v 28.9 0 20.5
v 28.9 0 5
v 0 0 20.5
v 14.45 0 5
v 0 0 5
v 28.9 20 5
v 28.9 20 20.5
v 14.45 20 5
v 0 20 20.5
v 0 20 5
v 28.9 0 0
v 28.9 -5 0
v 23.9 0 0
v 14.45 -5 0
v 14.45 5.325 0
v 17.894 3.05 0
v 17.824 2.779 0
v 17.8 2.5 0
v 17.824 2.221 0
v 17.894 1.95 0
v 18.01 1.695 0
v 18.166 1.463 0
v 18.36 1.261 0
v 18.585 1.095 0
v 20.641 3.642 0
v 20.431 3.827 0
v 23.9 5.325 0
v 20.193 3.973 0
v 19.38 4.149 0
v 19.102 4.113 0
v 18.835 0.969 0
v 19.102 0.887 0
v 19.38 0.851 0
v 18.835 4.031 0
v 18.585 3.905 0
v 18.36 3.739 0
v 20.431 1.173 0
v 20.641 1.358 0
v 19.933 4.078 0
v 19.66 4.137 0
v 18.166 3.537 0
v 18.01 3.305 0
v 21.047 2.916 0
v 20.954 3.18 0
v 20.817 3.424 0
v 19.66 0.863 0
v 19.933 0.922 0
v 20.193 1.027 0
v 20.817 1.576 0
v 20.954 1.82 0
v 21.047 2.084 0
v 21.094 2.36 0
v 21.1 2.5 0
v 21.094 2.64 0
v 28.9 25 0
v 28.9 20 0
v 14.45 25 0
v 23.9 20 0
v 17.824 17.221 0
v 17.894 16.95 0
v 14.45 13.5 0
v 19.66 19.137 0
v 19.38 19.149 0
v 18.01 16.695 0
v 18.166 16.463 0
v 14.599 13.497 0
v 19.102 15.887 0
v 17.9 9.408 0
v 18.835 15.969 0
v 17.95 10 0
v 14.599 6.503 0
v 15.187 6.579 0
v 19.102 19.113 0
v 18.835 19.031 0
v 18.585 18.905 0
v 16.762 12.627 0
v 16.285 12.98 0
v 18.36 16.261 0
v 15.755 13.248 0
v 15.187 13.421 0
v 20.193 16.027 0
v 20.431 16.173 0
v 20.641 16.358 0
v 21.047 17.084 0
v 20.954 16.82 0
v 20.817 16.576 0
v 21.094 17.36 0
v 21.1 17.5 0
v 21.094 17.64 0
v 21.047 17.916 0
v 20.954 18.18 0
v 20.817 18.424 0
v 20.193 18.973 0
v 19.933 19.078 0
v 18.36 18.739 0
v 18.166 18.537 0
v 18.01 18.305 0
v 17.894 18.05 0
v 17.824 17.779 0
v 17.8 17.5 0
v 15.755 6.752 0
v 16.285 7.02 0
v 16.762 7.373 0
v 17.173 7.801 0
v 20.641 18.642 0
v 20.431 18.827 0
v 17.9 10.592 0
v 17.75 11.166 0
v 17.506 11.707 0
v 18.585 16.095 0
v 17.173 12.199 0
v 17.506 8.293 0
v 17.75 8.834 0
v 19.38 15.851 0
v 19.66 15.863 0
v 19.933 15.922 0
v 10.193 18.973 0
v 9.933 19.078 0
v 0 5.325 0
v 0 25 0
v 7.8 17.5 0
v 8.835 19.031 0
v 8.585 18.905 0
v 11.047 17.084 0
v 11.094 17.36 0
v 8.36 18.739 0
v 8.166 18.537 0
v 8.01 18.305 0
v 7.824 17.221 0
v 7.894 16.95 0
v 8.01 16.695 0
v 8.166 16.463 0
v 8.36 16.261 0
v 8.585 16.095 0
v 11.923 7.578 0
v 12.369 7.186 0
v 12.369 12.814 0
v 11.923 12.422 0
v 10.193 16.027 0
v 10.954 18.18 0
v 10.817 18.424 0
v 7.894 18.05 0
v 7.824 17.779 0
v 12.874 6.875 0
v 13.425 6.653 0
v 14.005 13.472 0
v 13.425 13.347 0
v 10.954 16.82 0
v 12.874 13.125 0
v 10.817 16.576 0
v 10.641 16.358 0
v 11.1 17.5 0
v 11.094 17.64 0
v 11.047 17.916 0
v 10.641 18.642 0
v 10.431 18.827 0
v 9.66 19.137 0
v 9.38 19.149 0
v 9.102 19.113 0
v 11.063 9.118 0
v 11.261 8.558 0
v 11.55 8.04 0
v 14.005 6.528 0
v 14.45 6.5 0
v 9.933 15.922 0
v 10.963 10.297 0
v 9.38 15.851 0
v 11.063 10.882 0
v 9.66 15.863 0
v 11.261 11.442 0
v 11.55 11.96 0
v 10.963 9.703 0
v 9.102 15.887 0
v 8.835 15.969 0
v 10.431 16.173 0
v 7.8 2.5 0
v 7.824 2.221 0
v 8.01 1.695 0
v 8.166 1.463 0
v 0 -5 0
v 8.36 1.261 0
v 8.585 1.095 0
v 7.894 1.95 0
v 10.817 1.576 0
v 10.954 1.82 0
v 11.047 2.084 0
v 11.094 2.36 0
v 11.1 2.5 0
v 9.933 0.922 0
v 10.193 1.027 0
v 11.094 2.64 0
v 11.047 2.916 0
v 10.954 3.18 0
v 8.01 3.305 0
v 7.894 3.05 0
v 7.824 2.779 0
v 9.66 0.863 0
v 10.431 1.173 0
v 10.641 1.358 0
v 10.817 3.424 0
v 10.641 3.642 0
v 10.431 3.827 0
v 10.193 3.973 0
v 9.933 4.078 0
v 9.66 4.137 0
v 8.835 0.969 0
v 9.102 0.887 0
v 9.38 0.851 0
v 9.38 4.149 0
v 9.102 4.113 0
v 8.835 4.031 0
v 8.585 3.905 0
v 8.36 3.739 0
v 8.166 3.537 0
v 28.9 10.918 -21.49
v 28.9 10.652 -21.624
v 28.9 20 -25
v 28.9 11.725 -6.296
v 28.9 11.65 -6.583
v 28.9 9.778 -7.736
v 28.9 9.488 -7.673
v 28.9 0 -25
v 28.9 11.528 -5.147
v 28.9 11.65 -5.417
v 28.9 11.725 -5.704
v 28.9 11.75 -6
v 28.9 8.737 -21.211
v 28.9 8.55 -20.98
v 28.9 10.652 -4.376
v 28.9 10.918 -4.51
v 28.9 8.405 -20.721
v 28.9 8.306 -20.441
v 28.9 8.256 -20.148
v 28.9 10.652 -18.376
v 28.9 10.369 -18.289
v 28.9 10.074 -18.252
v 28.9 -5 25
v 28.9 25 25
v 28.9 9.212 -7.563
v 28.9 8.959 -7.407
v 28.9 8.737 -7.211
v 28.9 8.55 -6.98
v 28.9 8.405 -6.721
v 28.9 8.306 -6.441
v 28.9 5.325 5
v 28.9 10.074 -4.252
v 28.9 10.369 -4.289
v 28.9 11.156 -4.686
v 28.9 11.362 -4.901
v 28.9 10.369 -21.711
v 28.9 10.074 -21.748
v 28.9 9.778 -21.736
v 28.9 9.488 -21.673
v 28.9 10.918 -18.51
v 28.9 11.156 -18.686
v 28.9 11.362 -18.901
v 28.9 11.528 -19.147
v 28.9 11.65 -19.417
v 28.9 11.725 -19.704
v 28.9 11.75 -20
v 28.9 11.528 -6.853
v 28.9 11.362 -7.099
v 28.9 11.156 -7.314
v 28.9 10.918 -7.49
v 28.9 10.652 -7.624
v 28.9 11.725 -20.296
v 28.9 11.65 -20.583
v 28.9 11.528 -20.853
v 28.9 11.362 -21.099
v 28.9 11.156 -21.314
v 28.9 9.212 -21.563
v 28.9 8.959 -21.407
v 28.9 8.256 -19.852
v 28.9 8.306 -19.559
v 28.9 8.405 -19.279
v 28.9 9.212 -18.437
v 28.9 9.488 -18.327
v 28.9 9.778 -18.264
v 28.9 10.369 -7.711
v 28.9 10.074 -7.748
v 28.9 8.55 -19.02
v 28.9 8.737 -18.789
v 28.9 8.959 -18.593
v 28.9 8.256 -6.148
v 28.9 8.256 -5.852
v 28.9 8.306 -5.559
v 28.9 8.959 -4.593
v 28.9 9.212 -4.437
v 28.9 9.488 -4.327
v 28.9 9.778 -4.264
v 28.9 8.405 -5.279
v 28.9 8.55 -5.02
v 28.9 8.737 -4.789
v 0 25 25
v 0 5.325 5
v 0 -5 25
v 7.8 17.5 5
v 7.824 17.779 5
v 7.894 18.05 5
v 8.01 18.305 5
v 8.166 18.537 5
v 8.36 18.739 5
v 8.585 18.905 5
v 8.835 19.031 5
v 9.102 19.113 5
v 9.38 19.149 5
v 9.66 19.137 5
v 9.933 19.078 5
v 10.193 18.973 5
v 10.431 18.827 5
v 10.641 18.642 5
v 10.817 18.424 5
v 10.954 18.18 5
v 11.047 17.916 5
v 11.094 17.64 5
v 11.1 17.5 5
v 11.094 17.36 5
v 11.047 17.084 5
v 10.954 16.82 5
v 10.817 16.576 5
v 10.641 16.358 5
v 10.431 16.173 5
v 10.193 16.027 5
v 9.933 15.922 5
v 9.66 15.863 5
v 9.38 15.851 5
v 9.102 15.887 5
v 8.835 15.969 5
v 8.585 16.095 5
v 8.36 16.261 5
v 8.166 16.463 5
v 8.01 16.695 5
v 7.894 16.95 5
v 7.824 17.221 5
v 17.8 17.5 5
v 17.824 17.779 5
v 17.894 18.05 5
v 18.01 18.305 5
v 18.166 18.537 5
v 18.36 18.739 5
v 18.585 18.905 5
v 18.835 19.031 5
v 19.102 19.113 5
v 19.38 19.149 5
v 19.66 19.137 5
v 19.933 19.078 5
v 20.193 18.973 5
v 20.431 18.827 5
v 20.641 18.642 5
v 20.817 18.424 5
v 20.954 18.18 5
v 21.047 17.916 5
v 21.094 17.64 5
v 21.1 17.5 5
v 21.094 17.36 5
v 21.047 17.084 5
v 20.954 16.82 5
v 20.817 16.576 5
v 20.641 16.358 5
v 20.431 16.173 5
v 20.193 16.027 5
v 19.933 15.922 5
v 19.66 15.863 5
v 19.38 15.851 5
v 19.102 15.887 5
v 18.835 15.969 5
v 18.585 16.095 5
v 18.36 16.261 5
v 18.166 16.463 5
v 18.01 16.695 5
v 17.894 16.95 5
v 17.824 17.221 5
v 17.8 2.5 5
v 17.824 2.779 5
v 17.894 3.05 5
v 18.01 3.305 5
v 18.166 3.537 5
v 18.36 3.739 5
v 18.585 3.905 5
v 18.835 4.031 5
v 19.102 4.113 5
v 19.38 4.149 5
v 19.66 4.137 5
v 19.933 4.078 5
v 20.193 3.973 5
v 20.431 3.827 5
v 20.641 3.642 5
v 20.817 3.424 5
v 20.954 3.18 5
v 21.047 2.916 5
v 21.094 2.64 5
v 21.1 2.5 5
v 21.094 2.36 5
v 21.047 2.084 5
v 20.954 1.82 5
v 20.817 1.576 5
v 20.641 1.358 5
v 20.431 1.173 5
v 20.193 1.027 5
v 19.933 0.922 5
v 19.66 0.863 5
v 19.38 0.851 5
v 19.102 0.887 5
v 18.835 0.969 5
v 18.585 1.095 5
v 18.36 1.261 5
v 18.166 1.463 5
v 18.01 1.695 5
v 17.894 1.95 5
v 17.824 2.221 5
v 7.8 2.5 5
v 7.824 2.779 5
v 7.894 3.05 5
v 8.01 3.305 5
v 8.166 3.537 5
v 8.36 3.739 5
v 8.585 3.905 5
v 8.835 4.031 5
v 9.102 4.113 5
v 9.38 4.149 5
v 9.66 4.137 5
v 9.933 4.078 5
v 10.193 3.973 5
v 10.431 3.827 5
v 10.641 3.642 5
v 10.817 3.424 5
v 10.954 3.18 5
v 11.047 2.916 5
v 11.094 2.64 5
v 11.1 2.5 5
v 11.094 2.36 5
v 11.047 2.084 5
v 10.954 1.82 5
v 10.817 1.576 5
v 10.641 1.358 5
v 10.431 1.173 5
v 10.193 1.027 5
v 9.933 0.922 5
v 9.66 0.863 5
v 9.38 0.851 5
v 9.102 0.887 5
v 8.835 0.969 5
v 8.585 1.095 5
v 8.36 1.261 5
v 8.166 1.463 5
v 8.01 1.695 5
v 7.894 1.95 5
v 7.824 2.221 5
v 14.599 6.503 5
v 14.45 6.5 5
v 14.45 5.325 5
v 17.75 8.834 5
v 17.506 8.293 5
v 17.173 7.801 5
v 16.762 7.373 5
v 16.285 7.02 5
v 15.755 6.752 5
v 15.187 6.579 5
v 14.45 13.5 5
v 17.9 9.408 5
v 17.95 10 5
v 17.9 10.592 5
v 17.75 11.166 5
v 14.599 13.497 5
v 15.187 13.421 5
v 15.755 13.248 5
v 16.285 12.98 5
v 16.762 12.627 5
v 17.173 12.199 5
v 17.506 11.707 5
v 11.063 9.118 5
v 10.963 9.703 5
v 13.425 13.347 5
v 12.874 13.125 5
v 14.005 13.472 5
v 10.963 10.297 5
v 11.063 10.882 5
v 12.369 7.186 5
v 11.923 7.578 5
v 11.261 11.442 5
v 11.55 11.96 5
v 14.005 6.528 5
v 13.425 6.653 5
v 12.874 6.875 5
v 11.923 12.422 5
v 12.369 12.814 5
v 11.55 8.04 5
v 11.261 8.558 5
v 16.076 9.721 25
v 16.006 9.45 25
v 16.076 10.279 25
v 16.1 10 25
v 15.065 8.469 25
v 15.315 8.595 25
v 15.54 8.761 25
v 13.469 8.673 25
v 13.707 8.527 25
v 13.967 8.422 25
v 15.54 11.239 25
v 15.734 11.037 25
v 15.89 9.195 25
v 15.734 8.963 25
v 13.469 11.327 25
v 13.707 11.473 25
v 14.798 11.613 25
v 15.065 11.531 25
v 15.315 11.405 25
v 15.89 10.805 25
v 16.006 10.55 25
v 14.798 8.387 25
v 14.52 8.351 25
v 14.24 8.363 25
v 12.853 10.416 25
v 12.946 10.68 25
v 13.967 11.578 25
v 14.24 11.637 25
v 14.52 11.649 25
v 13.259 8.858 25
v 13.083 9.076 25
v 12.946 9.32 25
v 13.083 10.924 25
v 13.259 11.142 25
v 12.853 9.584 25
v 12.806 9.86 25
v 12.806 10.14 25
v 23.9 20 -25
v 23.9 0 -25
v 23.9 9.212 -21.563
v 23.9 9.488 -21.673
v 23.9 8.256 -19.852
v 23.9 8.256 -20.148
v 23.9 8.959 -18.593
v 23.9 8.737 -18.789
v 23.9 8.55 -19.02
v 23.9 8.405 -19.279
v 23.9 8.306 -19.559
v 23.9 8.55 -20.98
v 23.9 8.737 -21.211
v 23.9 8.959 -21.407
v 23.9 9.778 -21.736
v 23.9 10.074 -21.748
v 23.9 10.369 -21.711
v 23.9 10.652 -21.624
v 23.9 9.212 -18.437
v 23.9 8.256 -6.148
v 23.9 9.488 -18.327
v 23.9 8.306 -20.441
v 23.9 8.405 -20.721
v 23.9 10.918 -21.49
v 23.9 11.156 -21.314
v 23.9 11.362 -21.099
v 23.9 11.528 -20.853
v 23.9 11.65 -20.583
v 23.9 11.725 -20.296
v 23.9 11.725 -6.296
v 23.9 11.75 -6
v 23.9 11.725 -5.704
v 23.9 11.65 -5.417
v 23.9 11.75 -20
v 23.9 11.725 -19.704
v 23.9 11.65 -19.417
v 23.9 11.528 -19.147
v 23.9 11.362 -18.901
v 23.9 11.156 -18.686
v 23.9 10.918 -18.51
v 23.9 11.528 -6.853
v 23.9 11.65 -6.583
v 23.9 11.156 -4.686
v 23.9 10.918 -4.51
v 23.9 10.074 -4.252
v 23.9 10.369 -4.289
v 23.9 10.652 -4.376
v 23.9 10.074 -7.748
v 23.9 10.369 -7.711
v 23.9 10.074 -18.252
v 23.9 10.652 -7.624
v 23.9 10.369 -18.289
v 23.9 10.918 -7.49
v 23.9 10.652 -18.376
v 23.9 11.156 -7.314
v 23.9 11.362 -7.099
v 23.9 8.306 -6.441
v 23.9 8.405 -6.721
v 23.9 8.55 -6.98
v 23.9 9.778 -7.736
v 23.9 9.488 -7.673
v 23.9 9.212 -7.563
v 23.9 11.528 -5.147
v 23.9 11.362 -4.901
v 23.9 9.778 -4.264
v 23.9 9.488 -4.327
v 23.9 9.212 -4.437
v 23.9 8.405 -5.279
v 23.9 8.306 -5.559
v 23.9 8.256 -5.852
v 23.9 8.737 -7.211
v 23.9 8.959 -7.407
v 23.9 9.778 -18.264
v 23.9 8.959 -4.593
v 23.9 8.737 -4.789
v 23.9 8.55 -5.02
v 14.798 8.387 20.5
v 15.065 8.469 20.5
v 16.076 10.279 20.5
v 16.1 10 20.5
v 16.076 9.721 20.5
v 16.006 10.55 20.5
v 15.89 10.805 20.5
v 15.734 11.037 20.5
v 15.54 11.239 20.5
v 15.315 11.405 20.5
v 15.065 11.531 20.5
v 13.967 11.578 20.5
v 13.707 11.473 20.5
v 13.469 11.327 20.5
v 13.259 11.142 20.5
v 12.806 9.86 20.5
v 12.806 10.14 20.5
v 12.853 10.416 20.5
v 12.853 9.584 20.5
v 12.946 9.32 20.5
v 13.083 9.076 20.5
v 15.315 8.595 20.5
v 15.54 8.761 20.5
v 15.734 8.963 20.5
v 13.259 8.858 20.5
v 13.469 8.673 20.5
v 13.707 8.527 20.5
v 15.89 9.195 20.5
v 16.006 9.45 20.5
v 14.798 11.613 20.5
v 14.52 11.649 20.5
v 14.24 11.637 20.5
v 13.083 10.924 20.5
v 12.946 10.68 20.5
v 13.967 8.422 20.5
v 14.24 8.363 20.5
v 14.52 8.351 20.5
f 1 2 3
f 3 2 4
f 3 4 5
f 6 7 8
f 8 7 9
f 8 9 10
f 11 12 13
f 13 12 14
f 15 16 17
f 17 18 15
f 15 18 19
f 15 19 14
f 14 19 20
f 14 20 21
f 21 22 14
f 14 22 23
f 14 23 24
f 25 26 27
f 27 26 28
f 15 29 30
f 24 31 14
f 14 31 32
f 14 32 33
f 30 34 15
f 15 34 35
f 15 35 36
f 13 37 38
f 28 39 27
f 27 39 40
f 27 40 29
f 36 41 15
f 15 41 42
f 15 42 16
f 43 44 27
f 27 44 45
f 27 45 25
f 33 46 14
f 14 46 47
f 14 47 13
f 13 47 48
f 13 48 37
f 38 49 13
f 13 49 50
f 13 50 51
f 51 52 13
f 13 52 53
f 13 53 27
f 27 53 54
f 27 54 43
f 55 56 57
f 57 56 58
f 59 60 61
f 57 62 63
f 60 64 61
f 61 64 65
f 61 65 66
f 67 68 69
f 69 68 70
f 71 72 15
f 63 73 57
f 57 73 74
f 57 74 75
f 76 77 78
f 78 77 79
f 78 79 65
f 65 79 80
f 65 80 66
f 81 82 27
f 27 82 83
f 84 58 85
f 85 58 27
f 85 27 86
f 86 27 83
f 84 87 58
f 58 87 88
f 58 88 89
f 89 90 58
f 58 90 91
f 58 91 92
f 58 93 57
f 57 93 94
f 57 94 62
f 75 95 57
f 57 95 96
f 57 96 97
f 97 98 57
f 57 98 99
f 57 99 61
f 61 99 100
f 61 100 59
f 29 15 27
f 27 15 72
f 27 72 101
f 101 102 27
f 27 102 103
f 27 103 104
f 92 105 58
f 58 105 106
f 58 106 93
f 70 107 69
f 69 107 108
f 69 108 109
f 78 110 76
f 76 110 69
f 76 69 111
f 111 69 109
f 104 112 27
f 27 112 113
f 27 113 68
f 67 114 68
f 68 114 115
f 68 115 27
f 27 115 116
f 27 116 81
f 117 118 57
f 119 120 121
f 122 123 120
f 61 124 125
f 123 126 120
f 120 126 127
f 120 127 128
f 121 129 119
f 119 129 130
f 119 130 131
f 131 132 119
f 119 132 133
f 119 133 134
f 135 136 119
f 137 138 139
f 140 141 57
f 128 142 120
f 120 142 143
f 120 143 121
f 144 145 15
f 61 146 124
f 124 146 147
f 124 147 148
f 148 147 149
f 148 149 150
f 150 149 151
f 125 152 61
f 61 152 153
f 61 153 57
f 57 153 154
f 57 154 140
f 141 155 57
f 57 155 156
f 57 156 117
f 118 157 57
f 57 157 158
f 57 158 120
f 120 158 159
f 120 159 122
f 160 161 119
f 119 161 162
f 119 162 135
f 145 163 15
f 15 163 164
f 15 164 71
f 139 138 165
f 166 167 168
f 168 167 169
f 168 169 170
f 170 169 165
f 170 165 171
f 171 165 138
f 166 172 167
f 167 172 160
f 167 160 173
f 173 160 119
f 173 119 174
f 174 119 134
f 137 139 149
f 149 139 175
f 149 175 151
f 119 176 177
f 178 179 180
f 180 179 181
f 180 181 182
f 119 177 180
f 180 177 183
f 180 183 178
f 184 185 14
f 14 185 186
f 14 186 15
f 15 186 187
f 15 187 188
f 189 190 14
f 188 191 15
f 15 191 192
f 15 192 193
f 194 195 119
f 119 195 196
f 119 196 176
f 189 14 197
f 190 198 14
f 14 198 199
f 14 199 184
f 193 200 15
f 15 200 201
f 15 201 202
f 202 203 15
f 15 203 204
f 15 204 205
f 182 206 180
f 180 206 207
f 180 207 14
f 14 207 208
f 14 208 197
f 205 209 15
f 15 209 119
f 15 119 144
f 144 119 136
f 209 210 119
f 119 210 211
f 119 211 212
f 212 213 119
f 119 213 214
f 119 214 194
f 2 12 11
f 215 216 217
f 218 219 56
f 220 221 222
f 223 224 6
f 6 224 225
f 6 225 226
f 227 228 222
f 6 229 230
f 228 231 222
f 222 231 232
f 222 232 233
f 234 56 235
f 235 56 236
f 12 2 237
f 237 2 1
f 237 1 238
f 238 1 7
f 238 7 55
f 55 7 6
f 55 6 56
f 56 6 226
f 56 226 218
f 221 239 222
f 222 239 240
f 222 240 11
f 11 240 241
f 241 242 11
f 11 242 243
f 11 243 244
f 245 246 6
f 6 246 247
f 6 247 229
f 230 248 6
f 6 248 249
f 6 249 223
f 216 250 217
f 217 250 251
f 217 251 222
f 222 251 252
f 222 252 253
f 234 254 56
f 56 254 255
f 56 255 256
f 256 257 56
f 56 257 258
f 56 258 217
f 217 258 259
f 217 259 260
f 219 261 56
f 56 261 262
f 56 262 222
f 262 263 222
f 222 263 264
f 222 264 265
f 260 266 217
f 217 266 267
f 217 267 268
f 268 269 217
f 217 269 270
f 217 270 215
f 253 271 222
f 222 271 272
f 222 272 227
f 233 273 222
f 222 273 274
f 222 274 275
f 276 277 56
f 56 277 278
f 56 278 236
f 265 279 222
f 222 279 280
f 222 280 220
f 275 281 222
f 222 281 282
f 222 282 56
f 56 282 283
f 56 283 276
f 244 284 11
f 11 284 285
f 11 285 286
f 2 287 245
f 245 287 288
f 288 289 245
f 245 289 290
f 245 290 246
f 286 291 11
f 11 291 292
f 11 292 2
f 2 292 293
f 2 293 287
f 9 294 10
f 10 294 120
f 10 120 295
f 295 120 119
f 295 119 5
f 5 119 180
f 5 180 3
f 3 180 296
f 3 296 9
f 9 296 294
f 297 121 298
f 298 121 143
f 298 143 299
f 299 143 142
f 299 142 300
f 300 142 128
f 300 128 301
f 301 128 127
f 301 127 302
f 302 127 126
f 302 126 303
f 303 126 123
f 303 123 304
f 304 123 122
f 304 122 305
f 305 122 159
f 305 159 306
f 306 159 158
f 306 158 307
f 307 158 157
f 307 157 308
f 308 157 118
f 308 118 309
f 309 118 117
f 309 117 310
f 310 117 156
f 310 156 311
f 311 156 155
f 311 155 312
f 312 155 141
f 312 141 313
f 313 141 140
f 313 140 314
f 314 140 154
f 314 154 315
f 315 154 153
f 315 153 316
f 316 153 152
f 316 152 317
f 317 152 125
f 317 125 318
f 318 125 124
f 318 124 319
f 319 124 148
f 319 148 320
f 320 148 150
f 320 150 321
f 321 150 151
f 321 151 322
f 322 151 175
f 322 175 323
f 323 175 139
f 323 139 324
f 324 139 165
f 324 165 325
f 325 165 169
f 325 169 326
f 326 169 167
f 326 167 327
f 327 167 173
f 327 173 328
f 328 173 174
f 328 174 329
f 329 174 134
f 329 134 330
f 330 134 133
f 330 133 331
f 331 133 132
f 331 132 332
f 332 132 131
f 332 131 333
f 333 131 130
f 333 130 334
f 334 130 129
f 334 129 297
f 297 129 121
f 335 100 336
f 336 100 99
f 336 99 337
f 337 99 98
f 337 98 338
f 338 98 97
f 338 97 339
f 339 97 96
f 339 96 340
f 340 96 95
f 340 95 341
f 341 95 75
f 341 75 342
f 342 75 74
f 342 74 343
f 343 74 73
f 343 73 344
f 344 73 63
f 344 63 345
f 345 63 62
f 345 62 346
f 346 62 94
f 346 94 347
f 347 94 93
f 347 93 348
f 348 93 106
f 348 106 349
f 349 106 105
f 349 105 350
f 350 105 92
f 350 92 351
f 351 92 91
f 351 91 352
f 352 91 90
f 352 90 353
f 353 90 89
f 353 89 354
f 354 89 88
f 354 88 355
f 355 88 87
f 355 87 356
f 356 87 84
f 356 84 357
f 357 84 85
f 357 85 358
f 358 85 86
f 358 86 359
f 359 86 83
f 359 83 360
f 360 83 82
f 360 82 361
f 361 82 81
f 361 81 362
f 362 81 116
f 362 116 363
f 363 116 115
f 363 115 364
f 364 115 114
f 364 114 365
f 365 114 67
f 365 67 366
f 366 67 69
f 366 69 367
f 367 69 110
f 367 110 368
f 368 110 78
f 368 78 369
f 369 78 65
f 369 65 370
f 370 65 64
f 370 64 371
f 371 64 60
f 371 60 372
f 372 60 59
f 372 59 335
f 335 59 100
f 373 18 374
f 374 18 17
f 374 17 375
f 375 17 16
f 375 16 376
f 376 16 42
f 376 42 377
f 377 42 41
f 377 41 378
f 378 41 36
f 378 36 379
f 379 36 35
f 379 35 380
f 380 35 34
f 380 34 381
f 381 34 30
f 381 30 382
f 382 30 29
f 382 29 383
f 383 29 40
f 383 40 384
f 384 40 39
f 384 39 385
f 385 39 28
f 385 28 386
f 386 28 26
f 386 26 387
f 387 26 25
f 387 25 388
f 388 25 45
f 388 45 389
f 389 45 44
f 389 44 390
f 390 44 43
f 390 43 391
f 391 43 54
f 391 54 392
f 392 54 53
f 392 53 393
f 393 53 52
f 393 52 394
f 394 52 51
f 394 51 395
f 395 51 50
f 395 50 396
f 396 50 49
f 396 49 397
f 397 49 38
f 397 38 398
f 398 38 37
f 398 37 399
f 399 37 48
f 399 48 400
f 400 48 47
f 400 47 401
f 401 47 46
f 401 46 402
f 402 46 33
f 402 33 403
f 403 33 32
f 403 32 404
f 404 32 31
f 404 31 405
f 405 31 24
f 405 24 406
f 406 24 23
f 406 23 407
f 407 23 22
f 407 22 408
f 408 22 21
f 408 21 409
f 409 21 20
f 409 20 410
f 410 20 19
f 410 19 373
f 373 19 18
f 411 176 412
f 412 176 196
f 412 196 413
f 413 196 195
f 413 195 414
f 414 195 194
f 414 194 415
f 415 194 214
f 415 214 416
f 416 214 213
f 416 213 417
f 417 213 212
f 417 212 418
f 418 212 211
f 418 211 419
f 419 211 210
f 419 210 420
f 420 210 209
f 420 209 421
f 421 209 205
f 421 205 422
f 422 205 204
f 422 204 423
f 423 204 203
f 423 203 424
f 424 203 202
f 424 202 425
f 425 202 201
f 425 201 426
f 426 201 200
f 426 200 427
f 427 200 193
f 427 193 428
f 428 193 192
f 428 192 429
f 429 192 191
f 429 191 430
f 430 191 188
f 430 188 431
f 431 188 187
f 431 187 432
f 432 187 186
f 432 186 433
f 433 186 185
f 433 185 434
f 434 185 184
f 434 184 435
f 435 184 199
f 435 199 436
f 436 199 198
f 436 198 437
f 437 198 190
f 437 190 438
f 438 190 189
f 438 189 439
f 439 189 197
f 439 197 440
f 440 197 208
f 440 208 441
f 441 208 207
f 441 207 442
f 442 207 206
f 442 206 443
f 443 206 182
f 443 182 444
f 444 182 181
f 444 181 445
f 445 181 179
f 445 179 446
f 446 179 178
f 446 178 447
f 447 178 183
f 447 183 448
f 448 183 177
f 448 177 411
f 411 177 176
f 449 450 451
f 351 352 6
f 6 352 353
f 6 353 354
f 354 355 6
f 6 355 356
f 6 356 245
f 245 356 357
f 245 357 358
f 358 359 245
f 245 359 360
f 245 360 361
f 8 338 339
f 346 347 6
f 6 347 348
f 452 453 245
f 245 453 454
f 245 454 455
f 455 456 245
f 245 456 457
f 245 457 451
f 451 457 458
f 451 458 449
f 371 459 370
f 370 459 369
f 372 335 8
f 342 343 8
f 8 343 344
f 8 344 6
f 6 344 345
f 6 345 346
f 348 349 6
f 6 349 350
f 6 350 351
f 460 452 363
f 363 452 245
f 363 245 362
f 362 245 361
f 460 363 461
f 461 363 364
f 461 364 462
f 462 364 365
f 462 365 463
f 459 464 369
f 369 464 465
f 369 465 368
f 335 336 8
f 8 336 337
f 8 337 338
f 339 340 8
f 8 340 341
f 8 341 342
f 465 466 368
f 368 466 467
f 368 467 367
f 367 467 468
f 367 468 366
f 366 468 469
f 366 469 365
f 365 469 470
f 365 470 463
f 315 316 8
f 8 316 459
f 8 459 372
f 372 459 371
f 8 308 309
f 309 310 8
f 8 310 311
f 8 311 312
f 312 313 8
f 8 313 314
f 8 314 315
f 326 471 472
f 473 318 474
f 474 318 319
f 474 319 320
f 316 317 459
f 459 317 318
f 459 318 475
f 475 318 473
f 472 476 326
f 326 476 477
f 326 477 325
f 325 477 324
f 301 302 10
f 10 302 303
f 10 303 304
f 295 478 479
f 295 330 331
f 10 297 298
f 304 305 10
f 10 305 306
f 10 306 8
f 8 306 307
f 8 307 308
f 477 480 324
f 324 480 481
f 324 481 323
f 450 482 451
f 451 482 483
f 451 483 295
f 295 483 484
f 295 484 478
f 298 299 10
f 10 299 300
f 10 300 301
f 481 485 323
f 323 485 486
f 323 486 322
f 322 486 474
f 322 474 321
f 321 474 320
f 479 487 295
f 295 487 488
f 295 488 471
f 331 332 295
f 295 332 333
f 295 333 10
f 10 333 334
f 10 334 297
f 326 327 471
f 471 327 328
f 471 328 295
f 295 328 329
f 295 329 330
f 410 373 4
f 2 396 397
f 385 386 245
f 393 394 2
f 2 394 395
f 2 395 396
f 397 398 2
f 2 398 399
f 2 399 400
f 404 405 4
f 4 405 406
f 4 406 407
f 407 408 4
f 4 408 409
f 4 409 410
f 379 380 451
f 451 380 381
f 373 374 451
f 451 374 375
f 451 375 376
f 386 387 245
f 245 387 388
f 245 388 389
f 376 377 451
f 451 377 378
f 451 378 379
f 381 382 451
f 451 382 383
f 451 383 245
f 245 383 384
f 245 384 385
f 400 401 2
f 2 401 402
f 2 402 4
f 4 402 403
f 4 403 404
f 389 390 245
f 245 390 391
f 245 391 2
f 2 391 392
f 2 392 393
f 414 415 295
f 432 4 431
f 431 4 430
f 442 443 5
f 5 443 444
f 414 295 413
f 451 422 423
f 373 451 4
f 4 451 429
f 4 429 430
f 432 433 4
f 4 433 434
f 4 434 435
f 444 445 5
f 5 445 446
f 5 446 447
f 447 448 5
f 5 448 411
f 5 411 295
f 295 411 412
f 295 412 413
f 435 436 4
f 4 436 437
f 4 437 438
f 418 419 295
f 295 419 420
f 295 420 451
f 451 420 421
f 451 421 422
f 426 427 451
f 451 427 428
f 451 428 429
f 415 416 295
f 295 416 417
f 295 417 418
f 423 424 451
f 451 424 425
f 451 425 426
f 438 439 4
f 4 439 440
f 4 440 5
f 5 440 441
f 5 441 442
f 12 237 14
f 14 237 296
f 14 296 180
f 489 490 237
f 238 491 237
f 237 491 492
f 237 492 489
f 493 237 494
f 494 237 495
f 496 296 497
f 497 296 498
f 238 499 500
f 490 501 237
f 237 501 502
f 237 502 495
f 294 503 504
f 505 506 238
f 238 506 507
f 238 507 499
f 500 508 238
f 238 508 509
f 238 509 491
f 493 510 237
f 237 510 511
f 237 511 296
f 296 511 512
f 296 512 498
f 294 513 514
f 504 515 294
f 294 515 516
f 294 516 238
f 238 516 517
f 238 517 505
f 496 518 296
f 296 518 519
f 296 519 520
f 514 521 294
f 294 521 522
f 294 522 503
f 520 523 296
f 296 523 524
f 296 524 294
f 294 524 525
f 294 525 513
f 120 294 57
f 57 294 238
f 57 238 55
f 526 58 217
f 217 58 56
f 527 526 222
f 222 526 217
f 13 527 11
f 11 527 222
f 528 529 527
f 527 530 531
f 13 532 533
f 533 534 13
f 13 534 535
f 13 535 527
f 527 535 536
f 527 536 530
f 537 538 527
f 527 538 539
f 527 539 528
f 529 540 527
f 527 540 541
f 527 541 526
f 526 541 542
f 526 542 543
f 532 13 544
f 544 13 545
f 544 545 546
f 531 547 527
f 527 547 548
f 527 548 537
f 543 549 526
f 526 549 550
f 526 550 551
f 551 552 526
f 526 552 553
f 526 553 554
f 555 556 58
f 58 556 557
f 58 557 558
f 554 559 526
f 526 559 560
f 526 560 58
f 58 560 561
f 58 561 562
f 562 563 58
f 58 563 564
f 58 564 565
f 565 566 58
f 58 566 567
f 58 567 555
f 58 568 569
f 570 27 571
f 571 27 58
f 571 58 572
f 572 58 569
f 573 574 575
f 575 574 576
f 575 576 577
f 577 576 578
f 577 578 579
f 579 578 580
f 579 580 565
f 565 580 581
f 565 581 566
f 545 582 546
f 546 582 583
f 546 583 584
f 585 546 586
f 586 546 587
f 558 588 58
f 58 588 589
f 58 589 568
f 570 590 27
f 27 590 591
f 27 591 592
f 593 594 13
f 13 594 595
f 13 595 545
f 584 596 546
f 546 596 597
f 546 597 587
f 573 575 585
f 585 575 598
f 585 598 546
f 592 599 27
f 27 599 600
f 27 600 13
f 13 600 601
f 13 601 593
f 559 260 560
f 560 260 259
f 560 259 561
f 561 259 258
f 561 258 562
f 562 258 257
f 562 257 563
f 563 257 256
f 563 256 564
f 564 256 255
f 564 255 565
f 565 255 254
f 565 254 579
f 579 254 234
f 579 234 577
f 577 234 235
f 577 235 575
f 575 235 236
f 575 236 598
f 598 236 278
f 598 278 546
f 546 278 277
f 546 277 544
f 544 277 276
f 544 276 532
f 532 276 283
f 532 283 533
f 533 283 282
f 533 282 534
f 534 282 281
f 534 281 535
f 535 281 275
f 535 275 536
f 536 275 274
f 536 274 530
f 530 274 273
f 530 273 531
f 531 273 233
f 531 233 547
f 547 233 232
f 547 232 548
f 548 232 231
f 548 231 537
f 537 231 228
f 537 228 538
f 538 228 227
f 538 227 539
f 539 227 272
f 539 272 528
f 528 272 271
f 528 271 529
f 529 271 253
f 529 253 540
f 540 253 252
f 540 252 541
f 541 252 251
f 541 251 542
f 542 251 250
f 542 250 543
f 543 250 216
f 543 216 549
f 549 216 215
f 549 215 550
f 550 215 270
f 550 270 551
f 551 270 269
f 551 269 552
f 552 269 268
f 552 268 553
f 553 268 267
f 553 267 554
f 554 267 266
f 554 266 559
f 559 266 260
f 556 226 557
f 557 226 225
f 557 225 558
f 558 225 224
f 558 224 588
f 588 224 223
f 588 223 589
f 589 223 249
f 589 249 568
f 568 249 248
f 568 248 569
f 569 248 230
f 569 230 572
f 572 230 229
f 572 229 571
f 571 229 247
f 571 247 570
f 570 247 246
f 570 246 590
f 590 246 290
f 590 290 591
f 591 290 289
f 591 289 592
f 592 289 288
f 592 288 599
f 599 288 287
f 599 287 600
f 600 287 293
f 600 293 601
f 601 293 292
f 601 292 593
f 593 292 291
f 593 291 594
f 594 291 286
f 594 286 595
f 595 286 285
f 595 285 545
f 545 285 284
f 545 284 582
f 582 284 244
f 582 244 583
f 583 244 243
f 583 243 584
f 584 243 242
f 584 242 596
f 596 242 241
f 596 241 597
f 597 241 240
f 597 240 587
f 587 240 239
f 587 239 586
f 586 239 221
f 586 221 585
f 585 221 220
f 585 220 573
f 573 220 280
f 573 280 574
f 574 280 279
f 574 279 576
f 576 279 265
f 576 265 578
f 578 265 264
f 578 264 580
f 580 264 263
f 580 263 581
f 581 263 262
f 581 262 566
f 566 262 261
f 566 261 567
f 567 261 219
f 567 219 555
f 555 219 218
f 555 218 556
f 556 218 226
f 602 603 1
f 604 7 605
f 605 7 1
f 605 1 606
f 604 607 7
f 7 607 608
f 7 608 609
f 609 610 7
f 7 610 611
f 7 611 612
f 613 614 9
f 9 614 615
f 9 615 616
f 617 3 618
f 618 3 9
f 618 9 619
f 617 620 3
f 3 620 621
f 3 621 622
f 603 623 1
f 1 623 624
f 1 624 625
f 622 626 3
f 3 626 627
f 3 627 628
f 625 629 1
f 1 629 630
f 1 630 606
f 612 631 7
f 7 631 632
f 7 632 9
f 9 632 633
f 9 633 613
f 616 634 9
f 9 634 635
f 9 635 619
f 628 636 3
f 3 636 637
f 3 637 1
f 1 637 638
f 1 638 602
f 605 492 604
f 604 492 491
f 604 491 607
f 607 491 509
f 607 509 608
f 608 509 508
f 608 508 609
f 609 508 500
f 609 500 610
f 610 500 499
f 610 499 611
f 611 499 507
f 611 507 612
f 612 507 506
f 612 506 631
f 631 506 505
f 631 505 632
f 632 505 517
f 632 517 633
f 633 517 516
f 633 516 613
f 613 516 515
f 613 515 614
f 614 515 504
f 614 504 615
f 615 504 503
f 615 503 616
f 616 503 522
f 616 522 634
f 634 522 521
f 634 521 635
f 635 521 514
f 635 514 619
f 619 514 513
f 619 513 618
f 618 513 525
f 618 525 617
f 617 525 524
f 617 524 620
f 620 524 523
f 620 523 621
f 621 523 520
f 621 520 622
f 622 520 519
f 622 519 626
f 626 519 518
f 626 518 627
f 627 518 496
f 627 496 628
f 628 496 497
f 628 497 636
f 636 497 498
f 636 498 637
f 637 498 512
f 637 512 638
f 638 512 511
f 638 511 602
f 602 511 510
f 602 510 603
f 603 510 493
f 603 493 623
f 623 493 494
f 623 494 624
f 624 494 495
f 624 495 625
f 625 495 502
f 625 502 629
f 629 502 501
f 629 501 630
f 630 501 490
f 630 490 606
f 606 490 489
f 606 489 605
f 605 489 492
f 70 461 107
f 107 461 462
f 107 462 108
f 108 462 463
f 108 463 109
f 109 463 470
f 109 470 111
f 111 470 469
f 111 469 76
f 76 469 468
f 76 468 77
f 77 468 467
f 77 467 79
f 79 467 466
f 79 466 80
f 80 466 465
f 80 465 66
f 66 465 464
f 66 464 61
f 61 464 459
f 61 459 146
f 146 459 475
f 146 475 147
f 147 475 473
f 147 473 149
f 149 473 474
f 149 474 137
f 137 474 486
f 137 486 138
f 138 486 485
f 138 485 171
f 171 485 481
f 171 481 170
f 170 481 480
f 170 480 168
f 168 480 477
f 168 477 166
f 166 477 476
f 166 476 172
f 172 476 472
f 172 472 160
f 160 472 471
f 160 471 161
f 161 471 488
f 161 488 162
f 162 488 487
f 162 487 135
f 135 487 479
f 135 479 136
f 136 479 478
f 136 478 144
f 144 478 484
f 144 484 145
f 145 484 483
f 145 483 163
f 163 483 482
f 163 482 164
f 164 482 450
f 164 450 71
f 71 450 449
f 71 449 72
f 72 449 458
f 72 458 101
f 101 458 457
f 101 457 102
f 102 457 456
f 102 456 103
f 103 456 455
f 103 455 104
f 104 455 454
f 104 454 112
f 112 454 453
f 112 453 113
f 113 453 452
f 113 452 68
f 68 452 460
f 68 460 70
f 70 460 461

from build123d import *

# Parameters (mm, degrees)
SKETCH_1_W          = 28.9
SKETCH_1_H          = 20
SKETCH_1_R          = 1.65
EXTRUDE_1_DEPTH     = 5
SKETCH_1_5_W        = 28.9
SKETCH_1_5_H        = 5
EXTRUDE_4_DEPTH     = 25
SKETCH_2_W          = 25
SKETCH_2_H          = 20
SKETCH_2_R          = 1.75
EXTRUDE_5_DEPTH     = 5
SKETCH_3_W          = 28.9
SKETCH_3_H          = 20
SKETCH_3_R          = 1.65
EXTRUDE_6_DEPTH     = 4.5
CUT_EXTRUDE_1_REACH = 61.418
SKETCH_4_R          = 3.5


with BuildPart() as part:
    # 草图1 → 凸台-拉伸1 (new body)
    with BuildSketch(Plane.XY):
        with Locations((14.45, 10)):
            Rectangle(SKETCH_1_W, SKETCH_1_H)
        with Locations((9.45, 2.5)):
            Circle(SKETCH_1_R, mode=Mode.SUBTRACT)
        with Locations((19.45, 2.5)):
            Circle(SKETCH_1_R, mode=Mode.SUBTRACT)
        with Locations((9.45, 17.5)):
            Circle(SKETCH_1_R, mode=Mode.SUBTRACT)
        with Locations((19.45, 17.5)):
            Circle(SKETCH_1_R, mode=Mode.SUBTRACT)
    extrude(amount=EXTRUDE_1_DEPTH)

    # 草图1<5> → 凸台-拉伸4 (add)
    with BuildSketch(Plane.XY):
        with Locations((14.45, 22.5)):
            Rectangle(SKETCH_1_5_W, SKETCH_1_5_H)
        with Locations((14.45, -2.5)):
            Rectangle(SKETCH_1_5_W, SKETCH_1_5_H)
    extrude(amount=EXTRUDE_4_DEPTH)

    # 草图2 → 凸台-拉伸5 (add)
    with BuildSketch(Plane(origin=(28.9, 0, 0), x_dir=(0, 0, -1), z_dir=(1, 0, 0))):
        with Locations((12.5, 10)):
            Rectangle(SKETCH_2_W, SKETCH_2_H)
        with Locations((20, 10)):
            Circle(SKETCH_2_R, mode=Mode.SUBTRACT)
        with Locations((6, 10)):
            Circle(SKETCH_2_R, mode=Mode.SUBTRACT)
    extrude(amount=-EXTRUDE_5_DEPTH)

    # 草图3 → 凸台-拉伸6 (add)
    with BuildSketch(Plane.XY.offset(25)):
        with Locations((14.45, 10)):
            Rectangle(SKETCH_3_W, SKETCH_3_H)
        with Locations((14.45, 10)):
            Circle(SKETCH_3_R, mode=Mode.SUBTRACT)
    extrude(amount=-EXTRUDE_6_DEPTH)

    # 草图4 → 切除-拉伸1 (cut, up to next)
    with BuildSketch(Plane(origin=(0, 0, 20.5), x_dir=(-1, 0, 0), z_dir=(0, 0, -1)), mode=Mode.PRIVATE) as cut_extrude_1_sk1:
        with Locations((-14.45, 10)):
            Circle(SKETCH_4_R)
    cut_extrude_1_tool1 = extrude(cut_extrude_1_sk1.sketch, amount=CUT_EXTRUDE_1_REACH, mode=Mode.PRIVATE) & part.part
    add(cut_extrude_1_tool1.solids().sort_by_distance((14.45, 10, 20.5))[0], mode=Mode.SUBTRACT)


solid = part.part
